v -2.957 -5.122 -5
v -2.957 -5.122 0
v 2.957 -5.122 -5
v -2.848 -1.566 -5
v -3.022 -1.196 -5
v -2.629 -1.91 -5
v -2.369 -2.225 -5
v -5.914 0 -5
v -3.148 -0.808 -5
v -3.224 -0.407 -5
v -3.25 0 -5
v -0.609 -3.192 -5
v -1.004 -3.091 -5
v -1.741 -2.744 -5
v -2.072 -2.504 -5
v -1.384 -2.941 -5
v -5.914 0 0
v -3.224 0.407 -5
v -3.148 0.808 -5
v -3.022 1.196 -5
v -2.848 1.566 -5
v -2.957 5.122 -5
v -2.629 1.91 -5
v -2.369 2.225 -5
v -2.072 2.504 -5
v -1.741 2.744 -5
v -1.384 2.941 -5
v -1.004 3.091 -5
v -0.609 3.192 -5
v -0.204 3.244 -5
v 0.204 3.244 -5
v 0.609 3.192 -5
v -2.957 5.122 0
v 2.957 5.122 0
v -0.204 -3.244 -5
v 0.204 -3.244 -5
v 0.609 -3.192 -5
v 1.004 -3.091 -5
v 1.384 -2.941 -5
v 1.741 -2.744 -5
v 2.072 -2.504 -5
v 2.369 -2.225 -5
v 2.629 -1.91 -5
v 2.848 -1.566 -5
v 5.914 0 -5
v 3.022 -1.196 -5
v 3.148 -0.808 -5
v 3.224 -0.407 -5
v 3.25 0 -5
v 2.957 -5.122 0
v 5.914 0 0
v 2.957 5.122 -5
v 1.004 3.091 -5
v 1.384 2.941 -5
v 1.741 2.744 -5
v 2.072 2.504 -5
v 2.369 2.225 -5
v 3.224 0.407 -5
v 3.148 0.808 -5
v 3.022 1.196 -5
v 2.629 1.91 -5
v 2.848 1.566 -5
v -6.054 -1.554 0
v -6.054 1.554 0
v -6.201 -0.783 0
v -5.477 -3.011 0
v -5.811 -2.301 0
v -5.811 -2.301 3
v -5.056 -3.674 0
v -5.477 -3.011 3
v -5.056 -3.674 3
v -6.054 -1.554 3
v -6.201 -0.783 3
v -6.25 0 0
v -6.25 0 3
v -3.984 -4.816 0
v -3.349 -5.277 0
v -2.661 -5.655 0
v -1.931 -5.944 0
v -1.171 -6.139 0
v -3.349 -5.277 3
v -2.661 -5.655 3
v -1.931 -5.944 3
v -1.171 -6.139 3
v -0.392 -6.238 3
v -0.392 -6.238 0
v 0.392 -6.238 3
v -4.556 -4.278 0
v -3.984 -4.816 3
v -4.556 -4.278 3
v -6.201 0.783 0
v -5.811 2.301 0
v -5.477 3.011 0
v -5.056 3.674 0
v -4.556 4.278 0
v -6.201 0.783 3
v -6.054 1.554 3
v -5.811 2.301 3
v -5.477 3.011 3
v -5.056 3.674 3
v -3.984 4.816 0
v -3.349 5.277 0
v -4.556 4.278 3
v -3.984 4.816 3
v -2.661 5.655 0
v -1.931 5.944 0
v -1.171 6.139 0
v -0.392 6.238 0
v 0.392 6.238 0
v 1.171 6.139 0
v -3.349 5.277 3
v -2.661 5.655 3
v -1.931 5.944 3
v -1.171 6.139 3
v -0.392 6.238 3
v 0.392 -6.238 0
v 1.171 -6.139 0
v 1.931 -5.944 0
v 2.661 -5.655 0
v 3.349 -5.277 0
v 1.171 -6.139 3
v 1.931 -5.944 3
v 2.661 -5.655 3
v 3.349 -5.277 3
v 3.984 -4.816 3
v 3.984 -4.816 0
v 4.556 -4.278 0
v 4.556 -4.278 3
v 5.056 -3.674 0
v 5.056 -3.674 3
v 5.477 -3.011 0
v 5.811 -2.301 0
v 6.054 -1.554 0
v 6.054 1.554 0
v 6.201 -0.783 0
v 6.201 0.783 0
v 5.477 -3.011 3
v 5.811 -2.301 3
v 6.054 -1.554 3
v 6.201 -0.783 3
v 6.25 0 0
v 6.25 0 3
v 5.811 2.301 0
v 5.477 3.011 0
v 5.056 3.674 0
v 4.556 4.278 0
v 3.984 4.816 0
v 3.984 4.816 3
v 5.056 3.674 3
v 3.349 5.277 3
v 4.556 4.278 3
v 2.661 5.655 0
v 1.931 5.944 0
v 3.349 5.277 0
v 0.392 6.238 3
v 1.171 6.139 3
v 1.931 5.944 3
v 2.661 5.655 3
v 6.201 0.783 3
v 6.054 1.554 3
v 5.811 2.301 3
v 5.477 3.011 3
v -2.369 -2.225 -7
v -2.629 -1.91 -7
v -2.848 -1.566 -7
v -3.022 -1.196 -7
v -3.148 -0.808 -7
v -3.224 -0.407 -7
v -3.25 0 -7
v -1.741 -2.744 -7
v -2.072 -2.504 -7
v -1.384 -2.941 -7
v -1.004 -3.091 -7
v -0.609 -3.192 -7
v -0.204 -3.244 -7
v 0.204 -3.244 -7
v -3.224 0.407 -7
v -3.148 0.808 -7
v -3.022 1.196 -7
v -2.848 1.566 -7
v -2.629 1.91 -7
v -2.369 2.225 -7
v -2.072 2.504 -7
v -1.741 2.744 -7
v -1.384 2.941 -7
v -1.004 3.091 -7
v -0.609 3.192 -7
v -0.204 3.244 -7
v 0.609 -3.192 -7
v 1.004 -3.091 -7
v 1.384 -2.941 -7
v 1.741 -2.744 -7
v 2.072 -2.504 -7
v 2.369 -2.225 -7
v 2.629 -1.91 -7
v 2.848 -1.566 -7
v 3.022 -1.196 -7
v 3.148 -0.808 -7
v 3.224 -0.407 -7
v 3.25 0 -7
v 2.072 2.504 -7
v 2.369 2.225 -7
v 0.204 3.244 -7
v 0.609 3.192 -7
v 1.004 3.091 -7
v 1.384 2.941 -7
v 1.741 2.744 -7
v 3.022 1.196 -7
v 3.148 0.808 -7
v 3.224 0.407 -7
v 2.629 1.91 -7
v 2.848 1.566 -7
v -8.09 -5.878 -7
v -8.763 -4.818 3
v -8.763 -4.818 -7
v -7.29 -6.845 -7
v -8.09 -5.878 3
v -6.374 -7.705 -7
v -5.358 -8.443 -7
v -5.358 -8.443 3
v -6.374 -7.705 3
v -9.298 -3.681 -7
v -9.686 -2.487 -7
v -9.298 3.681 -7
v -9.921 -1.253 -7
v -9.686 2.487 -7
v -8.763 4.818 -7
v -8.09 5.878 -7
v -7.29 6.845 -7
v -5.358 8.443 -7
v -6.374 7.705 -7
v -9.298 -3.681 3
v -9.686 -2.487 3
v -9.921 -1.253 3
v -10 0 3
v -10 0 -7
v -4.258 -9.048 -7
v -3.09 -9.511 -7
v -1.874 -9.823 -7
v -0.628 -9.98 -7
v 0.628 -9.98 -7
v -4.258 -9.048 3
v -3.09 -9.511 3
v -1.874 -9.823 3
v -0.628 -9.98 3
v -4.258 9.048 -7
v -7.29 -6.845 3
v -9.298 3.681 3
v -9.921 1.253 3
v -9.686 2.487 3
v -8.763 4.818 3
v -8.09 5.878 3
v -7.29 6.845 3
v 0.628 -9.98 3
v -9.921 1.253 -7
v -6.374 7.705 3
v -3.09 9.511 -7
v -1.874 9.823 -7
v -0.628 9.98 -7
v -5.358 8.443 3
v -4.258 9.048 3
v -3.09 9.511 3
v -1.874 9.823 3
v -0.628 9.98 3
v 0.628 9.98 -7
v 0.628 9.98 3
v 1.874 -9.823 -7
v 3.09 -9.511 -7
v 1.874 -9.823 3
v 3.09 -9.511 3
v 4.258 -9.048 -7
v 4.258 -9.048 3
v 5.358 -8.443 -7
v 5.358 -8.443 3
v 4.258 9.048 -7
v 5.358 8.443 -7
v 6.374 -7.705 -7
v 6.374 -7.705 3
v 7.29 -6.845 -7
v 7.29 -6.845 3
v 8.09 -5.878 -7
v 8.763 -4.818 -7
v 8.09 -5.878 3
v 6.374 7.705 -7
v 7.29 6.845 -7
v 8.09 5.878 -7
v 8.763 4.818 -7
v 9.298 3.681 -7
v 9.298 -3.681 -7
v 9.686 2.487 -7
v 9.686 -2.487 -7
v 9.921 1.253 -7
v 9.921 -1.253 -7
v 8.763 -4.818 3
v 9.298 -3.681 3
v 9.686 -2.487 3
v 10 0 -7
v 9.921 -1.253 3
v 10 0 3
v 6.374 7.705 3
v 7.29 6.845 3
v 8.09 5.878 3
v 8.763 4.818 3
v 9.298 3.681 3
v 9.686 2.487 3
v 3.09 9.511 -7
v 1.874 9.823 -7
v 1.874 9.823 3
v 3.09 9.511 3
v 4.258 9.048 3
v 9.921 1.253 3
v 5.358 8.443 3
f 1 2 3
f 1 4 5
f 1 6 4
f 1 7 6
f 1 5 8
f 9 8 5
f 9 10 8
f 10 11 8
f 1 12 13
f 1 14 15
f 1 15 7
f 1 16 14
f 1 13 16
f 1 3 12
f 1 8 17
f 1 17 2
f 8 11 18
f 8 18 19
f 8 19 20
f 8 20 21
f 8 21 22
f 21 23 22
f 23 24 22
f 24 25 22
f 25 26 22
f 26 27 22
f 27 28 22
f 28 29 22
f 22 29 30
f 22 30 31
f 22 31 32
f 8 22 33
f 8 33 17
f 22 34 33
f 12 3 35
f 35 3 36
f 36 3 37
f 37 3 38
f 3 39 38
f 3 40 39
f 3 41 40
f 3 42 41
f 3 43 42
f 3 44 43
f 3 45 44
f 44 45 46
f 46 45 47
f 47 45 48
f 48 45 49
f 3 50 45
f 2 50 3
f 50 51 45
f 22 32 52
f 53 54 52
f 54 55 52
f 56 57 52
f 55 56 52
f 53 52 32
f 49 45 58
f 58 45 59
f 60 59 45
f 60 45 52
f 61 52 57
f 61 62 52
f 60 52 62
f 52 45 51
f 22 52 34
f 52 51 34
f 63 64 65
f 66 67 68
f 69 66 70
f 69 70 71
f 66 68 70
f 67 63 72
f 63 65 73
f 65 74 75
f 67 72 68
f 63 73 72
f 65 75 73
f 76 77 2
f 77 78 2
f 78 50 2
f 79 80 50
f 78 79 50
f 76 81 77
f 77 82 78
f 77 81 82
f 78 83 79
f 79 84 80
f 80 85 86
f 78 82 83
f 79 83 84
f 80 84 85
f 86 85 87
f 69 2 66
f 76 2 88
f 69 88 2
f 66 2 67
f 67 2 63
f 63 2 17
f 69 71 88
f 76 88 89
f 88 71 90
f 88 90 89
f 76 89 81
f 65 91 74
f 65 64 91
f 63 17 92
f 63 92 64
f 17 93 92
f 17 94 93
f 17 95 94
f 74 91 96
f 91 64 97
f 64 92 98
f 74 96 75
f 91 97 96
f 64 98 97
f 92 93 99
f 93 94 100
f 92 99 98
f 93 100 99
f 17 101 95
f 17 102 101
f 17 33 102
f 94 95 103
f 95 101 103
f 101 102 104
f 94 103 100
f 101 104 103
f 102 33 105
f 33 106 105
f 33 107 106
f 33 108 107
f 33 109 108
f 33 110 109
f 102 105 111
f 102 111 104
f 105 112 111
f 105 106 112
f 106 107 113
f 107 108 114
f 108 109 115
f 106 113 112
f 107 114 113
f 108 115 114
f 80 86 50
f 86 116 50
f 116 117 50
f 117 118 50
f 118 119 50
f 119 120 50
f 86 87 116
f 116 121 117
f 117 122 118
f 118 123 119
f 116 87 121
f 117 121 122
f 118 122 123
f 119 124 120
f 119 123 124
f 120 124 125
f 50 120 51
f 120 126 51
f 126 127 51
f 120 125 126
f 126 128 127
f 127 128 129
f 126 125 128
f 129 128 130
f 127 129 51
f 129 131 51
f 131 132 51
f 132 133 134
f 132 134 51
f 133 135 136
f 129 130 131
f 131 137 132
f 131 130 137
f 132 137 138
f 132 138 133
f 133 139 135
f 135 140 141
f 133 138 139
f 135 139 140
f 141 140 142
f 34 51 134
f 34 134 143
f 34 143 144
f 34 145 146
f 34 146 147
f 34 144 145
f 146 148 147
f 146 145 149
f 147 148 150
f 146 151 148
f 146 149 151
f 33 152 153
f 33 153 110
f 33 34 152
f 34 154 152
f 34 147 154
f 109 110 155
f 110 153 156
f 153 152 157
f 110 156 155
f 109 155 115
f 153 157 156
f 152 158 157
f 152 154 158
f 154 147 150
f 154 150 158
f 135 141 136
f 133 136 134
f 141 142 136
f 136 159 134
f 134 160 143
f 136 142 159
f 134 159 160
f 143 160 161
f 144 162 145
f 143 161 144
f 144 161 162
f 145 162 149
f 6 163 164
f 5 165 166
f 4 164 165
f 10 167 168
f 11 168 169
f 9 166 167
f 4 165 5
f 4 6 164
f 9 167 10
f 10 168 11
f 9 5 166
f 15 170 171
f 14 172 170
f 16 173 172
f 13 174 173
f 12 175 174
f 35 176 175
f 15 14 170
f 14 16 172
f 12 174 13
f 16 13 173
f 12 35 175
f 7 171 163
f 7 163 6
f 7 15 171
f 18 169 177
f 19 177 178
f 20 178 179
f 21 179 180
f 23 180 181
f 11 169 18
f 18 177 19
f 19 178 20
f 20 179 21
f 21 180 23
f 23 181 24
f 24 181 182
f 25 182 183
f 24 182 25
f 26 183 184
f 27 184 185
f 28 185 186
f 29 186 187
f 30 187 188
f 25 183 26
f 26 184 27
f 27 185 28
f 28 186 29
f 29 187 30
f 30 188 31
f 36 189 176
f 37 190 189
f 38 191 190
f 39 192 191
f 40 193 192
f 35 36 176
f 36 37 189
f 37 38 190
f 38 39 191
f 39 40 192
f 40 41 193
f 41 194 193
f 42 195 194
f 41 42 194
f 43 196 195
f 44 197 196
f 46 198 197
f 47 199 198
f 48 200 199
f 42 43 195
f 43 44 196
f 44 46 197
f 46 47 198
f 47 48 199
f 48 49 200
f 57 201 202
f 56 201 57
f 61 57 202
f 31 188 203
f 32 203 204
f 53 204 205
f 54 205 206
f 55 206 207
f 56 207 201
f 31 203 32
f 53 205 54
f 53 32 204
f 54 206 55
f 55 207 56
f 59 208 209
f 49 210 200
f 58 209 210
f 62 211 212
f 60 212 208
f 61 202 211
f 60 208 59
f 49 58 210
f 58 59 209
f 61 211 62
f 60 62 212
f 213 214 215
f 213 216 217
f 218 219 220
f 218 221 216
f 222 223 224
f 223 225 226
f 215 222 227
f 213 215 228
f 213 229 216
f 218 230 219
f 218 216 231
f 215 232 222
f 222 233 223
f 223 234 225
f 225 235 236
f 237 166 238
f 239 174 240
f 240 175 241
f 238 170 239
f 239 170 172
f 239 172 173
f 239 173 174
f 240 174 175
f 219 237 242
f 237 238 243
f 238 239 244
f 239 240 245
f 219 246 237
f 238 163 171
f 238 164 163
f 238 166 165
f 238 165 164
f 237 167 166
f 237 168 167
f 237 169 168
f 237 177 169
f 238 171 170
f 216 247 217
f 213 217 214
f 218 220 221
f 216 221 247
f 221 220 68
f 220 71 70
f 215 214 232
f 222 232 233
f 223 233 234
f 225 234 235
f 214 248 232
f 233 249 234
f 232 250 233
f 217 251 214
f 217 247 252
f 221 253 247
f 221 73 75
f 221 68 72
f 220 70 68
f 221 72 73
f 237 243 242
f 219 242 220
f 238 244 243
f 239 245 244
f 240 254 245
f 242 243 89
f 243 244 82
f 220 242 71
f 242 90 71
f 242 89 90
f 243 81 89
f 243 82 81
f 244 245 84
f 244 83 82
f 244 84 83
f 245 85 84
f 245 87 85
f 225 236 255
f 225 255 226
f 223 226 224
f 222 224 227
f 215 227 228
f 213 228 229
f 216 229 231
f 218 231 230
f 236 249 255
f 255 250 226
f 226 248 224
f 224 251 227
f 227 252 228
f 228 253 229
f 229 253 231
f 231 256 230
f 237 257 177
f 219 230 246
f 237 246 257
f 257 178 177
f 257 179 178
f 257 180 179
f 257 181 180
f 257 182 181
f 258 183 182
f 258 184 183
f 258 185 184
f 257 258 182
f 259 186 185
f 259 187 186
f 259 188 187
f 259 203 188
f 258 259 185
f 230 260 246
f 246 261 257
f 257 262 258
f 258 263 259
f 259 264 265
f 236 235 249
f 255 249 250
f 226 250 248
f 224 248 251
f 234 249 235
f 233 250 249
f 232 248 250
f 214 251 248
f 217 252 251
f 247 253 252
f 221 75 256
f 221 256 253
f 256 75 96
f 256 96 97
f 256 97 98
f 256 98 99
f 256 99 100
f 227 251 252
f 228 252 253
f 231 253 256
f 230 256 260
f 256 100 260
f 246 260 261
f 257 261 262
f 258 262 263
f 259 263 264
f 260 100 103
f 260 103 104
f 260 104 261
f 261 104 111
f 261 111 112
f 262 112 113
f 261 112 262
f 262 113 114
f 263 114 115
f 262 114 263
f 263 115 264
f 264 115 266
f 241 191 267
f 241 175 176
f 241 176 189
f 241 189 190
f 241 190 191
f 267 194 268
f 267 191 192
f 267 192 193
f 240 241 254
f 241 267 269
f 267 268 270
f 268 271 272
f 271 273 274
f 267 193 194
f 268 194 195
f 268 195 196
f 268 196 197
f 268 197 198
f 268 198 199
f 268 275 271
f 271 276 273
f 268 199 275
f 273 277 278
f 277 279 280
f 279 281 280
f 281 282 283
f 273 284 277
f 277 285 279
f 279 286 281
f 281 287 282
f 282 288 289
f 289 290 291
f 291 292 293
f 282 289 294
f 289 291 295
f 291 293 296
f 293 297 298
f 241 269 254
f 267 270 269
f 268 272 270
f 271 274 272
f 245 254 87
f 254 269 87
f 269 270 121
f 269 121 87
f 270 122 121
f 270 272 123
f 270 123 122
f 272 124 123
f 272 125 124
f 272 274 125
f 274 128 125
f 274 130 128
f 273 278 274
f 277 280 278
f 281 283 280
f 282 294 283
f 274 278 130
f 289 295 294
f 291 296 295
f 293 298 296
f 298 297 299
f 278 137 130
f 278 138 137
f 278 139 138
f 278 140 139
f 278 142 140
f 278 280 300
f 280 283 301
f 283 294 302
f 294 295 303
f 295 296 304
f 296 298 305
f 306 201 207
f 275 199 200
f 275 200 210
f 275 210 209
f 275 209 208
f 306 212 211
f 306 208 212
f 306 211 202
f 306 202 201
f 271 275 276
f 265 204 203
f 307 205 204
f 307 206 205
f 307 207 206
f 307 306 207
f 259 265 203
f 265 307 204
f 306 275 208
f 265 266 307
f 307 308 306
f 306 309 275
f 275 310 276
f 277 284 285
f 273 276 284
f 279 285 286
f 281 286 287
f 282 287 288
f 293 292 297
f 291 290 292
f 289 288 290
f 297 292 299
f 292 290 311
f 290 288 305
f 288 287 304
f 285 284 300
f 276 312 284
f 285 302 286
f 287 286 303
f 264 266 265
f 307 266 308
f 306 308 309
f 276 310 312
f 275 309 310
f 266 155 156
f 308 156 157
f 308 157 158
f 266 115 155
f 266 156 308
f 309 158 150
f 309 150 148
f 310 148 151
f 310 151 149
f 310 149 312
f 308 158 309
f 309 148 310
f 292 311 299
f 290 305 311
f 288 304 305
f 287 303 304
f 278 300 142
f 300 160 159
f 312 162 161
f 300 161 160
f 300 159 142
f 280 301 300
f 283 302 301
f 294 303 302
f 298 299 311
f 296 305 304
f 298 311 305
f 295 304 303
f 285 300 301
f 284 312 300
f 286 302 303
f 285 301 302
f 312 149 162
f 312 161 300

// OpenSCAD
$fn = 50;


difference() {
	union() {
		translate(v = [0, 0, -7.0000000000]) {
			cylinder(h = 10.0000000000, r = 10.0000000000);
		}
	}
	union() {
		translate(v = [0, 0, 0]) {
			rotate(a = [0, 0, 0]) {
				difference() {
					union() {
						translate(v = [0, 0, -5]) {
							linear_extrude(height = 5) {
								polygon(points = [[5.9142500000, 0.0000000000], [2.9571250000, 5.1218907443], [-2.9571250000, 5.1218907443], [-5.9142500000, 0.0000000000], [-2.9571250000, -5.1218907443], [2.9571250000, -5.1218907443]]);
							}
						}
					}
					union();
				}
			}
		}
		#cylinder(h = 3, r = 6.2500000000);
		#translate(v = [0, 0, -100.0000000000]) {
			cylinder(h = 200, r = 3.2500000000);
		}
	}
}
